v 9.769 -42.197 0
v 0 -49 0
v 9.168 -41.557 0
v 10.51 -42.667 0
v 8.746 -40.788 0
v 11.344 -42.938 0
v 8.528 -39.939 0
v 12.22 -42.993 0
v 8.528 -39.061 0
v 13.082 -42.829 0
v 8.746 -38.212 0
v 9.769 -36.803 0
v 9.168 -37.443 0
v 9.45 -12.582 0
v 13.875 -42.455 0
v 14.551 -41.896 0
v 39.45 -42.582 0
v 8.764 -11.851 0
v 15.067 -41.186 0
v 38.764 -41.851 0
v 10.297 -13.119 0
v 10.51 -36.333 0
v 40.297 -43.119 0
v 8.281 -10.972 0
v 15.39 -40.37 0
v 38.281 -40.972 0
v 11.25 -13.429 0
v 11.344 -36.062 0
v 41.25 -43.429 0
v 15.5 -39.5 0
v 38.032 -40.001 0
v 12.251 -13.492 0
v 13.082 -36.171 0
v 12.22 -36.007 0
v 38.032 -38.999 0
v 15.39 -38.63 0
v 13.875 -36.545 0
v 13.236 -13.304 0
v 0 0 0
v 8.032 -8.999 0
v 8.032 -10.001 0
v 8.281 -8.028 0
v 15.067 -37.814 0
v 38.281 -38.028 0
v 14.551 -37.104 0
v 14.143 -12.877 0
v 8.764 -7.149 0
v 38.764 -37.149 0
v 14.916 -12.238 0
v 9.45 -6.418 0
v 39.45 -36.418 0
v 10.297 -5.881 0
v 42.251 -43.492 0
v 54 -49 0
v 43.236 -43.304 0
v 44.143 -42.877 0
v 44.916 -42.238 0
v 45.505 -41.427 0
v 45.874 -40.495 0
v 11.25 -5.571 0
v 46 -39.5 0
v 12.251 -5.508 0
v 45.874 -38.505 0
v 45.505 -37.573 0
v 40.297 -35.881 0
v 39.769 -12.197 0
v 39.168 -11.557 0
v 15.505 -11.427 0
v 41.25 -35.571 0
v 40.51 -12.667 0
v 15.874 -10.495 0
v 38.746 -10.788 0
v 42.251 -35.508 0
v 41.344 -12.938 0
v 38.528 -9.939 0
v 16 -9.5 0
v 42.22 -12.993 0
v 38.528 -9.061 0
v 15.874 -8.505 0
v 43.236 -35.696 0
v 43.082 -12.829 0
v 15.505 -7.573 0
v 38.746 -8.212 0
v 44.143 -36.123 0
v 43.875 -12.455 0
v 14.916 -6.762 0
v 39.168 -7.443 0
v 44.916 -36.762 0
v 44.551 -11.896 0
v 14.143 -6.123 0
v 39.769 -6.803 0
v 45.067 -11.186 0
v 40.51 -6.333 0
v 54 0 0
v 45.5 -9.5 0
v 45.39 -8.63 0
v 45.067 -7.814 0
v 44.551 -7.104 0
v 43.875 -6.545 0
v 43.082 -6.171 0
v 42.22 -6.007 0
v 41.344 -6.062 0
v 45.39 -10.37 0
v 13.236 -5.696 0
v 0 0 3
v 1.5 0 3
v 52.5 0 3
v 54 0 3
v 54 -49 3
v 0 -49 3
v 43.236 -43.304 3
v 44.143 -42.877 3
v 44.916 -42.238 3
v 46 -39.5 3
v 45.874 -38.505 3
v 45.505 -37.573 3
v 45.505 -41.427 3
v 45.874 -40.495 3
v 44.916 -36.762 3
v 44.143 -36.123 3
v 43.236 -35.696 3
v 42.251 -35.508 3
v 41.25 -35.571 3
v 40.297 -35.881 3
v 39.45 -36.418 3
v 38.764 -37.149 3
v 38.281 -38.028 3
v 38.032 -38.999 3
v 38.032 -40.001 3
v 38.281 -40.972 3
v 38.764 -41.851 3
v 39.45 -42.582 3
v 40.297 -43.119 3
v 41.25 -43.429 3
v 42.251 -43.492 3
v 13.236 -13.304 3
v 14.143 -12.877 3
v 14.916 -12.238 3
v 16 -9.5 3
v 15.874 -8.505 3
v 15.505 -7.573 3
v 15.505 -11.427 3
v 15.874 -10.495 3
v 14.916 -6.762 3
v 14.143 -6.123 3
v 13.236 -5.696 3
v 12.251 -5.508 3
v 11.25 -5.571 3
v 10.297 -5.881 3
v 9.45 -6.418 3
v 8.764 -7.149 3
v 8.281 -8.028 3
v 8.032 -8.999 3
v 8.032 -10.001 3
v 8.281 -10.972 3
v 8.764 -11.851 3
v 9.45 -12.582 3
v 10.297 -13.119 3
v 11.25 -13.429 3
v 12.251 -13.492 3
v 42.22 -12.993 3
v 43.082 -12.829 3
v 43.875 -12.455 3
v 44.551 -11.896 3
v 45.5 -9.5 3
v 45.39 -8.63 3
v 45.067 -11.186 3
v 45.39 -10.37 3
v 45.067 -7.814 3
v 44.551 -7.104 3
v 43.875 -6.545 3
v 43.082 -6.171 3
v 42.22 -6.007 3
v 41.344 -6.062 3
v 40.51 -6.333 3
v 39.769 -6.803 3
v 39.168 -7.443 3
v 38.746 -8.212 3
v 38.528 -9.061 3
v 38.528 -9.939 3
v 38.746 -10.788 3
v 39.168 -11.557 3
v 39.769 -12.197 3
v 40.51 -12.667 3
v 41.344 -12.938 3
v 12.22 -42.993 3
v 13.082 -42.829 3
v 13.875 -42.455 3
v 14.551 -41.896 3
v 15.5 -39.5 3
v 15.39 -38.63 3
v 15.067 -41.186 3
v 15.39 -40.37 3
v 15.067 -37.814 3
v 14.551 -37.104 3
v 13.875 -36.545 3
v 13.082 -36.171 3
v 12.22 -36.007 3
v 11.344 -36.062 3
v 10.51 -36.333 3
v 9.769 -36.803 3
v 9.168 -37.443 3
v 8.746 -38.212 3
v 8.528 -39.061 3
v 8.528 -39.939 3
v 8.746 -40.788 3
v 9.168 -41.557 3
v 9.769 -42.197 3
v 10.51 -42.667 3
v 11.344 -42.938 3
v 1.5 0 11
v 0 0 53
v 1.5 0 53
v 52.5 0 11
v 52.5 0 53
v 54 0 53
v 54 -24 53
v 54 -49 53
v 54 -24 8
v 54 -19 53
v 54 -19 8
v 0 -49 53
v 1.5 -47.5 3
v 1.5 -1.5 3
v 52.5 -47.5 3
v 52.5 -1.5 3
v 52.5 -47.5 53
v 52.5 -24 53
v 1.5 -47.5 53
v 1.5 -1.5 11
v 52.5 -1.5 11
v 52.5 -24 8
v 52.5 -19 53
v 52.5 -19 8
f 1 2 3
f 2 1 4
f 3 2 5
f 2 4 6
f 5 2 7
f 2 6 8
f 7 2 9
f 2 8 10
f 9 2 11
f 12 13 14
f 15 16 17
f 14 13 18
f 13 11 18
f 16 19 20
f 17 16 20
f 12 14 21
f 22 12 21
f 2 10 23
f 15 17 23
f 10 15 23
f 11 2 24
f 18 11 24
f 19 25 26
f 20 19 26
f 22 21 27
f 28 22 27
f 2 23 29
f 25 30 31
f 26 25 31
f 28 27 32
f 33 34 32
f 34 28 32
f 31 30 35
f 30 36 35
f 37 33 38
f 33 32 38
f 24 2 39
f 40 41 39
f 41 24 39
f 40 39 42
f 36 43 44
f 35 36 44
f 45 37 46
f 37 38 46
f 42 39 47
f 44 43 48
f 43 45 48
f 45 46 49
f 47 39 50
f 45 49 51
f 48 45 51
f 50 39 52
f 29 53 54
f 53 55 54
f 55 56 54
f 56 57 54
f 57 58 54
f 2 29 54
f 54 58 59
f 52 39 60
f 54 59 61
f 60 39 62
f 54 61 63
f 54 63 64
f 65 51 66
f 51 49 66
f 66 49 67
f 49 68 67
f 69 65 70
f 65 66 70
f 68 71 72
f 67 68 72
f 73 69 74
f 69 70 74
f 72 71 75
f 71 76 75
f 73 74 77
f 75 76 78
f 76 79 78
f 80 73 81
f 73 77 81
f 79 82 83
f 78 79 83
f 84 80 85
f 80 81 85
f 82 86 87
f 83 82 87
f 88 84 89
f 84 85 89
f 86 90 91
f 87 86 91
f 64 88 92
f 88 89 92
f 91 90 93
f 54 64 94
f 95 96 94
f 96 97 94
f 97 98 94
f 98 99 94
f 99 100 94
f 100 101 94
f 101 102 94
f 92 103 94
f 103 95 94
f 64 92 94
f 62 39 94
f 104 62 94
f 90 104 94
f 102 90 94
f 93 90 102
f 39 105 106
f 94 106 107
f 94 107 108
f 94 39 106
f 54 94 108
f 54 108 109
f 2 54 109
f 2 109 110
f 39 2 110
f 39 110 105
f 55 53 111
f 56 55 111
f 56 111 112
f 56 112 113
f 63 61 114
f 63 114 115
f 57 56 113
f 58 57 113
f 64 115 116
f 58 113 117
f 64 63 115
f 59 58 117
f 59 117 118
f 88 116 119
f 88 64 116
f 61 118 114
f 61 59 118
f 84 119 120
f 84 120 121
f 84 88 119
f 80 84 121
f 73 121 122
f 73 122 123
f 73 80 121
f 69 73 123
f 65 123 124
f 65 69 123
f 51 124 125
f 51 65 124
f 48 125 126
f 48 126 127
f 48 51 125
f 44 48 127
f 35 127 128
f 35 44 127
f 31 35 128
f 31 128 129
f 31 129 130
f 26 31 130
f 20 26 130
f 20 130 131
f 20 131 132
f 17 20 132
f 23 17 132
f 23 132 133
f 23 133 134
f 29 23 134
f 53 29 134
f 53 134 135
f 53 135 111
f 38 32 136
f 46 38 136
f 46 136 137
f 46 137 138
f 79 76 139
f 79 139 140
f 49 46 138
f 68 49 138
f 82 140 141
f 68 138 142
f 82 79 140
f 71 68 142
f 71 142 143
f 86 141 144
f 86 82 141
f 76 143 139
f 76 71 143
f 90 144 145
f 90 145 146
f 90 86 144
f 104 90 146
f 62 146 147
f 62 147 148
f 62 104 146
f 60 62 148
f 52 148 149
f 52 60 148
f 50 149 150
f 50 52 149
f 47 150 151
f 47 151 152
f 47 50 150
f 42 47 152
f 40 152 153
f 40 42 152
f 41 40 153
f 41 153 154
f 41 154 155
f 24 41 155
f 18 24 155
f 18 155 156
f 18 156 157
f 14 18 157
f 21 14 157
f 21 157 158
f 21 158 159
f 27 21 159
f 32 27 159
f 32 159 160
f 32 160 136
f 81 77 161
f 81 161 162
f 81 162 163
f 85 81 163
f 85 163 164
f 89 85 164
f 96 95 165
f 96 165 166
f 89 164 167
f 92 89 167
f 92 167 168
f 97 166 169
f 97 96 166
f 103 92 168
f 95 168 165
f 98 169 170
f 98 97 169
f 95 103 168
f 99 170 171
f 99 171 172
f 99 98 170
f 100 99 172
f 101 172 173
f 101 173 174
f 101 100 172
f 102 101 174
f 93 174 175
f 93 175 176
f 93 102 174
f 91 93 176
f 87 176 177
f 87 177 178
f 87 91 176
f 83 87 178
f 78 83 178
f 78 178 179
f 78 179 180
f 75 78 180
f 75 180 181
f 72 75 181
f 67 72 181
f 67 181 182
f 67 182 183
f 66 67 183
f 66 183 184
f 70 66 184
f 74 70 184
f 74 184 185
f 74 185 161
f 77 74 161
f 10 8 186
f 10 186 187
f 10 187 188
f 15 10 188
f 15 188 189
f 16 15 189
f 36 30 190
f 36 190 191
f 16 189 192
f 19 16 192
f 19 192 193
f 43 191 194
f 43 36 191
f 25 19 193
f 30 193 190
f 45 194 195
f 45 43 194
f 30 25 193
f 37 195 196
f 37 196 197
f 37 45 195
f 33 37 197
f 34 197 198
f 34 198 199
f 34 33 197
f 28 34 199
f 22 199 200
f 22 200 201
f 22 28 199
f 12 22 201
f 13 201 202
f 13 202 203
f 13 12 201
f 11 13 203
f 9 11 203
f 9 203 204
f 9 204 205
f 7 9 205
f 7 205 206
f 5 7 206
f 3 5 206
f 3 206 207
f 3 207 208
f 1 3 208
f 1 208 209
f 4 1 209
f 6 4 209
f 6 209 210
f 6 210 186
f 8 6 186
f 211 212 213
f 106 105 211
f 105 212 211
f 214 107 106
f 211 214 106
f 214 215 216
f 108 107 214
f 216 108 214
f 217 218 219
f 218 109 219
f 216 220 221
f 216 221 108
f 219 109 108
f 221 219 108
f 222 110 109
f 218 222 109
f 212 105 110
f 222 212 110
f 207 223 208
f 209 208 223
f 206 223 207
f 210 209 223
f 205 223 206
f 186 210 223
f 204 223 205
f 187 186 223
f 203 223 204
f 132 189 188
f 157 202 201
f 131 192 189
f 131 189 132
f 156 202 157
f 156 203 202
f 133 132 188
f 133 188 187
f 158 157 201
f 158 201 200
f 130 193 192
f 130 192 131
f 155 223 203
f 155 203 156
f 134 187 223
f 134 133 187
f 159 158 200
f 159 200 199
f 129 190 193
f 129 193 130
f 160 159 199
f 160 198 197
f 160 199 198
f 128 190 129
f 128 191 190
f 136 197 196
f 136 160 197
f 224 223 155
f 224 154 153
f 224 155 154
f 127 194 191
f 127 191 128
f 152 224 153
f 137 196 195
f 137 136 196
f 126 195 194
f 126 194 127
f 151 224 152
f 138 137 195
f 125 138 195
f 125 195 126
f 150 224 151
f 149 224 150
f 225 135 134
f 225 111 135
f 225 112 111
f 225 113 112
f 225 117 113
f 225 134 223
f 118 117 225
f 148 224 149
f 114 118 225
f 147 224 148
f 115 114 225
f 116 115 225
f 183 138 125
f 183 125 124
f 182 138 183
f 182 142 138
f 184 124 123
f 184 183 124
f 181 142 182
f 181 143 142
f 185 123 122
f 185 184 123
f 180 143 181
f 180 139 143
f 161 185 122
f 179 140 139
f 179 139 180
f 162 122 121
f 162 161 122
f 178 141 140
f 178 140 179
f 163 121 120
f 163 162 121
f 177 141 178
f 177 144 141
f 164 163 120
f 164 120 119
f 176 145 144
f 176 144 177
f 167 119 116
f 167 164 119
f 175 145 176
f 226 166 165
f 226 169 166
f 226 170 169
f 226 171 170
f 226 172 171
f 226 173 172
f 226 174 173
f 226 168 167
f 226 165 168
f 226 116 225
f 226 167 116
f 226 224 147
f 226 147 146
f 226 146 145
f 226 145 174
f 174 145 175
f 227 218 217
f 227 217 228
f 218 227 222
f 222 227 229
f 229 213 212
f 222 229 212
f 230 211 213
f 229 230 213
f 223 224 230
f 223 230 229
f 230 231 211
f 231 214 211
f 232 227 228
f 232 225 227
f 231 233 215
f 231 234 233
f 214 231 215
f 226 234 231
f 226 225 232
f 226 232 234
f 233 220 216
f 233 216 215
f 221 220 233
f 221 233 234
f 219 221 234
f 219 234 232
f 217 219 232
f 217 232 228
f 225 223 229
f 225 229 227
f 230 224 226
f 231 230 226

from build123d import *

# Parameters (mm, degrees)
SKETCH_W     = 54
SKETCH_H     = 49
SKETCH_R     = 3.5
SKETCH_R_2   = 4
PAD_DEPTH    = 3
PAD001_DEPTH = 50
SKETCH002_W  = 5
SKETCH002_H  = 45
POCKET_DEPTH = 1.5
SKETCH003_W  = 51
SKETCH003_H  = 1.5
PAD002_DEPTH = 8


with BuildPart() as part:
    # Sketch → Pad (new body)
    with BuildSketch(Plane.XY):
        with Locations((27, -24.5)):
            Rectangle(SKETCH_W, SKETCH_H)
        with Locations((12, -39.5)):
            Circle(SKETCH_R, mode=Mode.SUBTRACT)
        with Locations((42, -9.5)):
            Circle(SKETCH_R, mode=Mode.SUBTRACT)
        with Locations((12, -9.5)):
            Circle(SKETCH_R_2, mode=Mode.SUBTRACT)
        with Locations((42, -39.5)):
            Circle(SKETCH_R_2, mode=Mode.SUBTRACT)
    extrude(amount=PAD_DEPTH)

    # Sketch001 → Pad001 (new body)
    with BuildSketch(Plane.XY.offset(3)):
        Polygon((0, 0), (0, -49), (54, -49), (54, 0), (52.5, 0), (52.5, -47.5), (1.5, -47.5), (1.5, 0), align=None)
    extrude(amount=PAD001_DEPTH)

    # Sketch002 → Pocket (cut)
    with BuildSketch(Plane.YZ.offset(54)):
        with Locations((-21.5, 30.5)):
            Rectangle(SKETCH002_W, SKETCH002_H)
    extrude(amount=-POCKET_DEPTH, mode=Mode.SUBTRACT)

    # Sketch003 → Pad002 (new body)
    with BuildSketch(Plane.XY.offset(3)):
        with Locations((27, -0.75)):
            Rectangle(SKETCH003_W, SKETCH003_H)
    extrude(amount=PAD002_DEPTH)


solid = part.part
